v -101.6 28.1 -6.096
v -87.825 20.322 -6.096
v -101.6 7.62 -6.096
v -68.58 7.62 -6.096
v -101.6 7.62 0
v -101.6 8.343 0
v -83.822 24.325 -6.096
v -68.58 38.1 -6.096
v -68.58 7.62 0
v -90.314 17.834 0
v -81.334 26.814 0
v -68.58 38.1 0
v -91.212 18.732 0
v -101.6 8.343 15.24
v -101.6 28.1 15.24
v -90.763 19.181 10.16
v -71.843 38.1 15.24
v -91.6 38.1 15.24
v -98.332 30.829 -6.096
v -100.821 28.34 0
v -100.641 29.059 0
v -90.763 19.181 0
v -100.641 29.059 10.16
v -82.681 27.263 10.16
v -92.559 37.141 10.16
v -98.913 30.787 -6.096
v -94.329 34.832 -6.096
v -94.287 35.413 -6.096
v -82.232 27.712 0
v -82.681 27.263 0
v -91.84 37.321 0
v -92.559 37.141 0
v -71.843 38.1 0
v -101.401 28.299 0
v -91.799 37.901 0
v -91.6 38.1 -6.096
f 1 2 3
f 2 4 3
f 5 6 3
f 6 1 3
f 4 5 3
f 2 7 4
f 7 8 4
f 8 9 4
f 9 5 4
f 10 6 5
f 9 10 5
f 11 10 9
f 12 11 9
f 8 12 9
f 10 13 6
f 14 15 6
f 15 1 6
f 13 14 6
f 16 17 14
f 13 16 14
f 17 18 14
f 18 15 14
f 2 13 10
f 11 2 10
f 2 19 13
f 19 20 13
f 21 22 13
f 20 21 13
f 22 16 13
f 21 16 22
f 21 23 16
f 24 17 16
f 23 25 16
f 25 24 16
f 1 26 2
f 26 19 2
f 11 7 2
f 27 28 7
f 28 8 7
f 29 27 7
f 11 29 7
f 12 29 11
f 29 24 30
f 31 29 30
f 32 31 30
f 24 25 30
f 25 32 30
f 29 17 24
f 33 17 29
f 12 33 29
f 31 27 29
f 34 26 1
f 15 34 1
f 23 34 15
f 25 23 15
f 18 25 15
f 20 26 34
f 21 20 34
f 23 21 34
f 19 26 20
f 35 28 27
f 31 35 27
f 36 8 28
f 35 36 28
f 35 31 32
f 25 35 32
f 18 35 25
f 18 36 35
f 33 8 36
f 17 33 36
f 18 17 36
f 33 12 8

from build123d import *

# Parameters (mm, degrees)
BOSS_EXTRUDE1_DEPTH   = 27.432
BOSS_EXTRUDE2_DEPTH   = 5.08
SKETCH4_R             = 1.524
CUT_EXTRUDE1_DEPTH    = 2.286
SKETCH4_4_R           = 1.524
CUT_EXTRUDE2_DEPTH    = 63.630575033
BOSS_EXTRUDE3_DEPTH   = 3.81
FILLET1_R             = 2.54
CHAMFER3_SIZE         = 1.27
CHAMFER4_SIZE         = 0.254
SKETCH8_W             = 101.6
SKETCH8_H             = 44.45
CUT_EXTRUDE3_DEPTH    = 5.08
CHAMFER5_SIZE         = 1.27
BOSS_EXTRUDE4_DEPTH   = 6.096
FILLET2_R             = 1.27
CUT_EXTRUDE4_DEPTH    = 15.24
MIRROR3_COPY_1_DEPTH  = 15.24
CHAMFER7_SIZE         = 0.381
SKETCH19_W            = 135.869666512
SKETCH19_H            = 67.345799606
CUT_EXTRUDE9_DEPTH    = 31.242
BOSS_EXTRUDE6_DEPTH   = 20.32
SKETCH21_W            = 80.01
SKETCH21_H            = 52.07
BOSS_EXTRUDE7_DEPTH   = 3.81
FILLET3_R             = 2.54
CHAMFER8_SIZE         = 1.27
BOSS_EXTRUDE8_DEPTH   = 10.16
BOSS_EXTRUDE10_DEPTH  = 5.08
MIRROR13_COPY_1_DEPTH = 10.16
MIRROR13_COPY_2_DEPTH = 5.08
SKETCH27_W            = 107.092264377
SKETCH27_H            = 185.22400122
CUT_EXTRUDE11_DEPTH   = 177.054251014
SKETCH28_W            = 133.557103753
SKETCH28_H            = 91.2241148
CUT_EXTRUDE12_DEPTH   = 45.72


with BuildPart() as part:
    # Sketch1 → Boss-Extrude1 (new body)
    with BuildSketch(Plane(origin=(10.858740921, 0, 0), x_dir=(1, 0, 0), z_dir=(0, 0, 1))):
        Polygon((-52.705, 25.4), (-52.705, 21.59), (48.895, 21.59), (48.895, -22.86), (-52.705, -22.86), (-52.705, -25.4), (52.705, -25.4), (52.705, 25.4), align=None)
    extrude(amount=BOSS_EXTRUDE1_DEPTH)

    # Sketch1<3> → Boss-Extrude2 (add)
    with BuildSketch(Plane(origin=(10.858740921, 0, 0), x_dir=(1, 0, 0), z_dir=(0, 0, 1))):
        Polygon((48.895, 21.59), (-52.705, 21.59), (-52.705, 13.97), (-6.985, 13.97), (-6.985, -6.35), (-52.705, -6.35), (-52.705, -22.86), (48.895, -22.86), align=None)
    extrude(amount=BOSS_EXTRUDE2_DEPTH)

    # Sketch4 → Cut-Extrude1 (cut)
    # profile 1 of 4: a face of its own
    with BuildSketch(Plane(origin=(10.858740921, 0, 5.08), x_dir=(1, 0, 0), z_dir=(0, 0, 1))):
        Polygon((-44.785877438, 21.59), (-47.924122562, 21.59), (-49.493245123, 18.8722), (-47.924122562, 16.1544), (-44.785877438, 16.1544), (-43.216754877, 18.8722), align=None)
        with Locations((-46.355, 18.8722)):
            Circle(SKETCH4_R, mode=Mode.SUBTRACT)
    # profile 2 of 4: a face of its own
    with BuildSketch(Plane(origin=(10.858740921, 0, 5.08), x_dir=(1, 0, 0), z_dir=(0, 0, 1))):
        Polygon((21.126640721, 16.1544), (17.988395597, 16.1544), (16.419273036, 18.8722), (17.988395597, 21.59), (21.126640721, 21.59), (22.695763282, 18.8722), align=None)
        with Locations((19.557518159, 18.8722)):
            Circle(SKETCH4_R, mode=Mode.SUBTRACT)
    # profile 3 of 4: a face of its own
    with BuildSketch(Plane(origin=(10.858740921, 0, 5.08), x_dir=(1, 0, 0), z_dir=(0, 0, 1))):
        Polygon((22.695763282, -18.8722), (21.126640721, -16.1544), (17.988395597, -16.1544), (16.419273036, -18.8722), (17.988395597, -21.59), (21.126640721, -21.59), align=None)
        with Locations((19.557518159, -18.8722)):
            Circle(SKETCH4_R, mode=Mode.SUBTRACT)
    # profile 4 of 4: a face of its own
    with BuildSketch(Plane(origin=(10.858740921, 0, 5.08), x_dir=(1, 0, 0), z_dir=(0, 0, 1))):
        Polygon((-49.493245123, -18.8722), (-47.924122562, -16.1544), (-44.785877438, -16.1544), (-43.216754877, -18.8722), (-44.785877438, -21.59), (-47.924122562, -21.59), align=None)
        with Locations((-46.355, -18.8722)):
            Circle(SKETCH4_R, mode=Mode.SUBTRACT)
    extrude(amount=-CUT_EXTRUDE1_DEPTH, mode=Mode.SUBTRACT)

    # Sketch4<4> → Cut-Extrude2 (cut, through all)
    with BuildSketch(Plane(origin=(10.858740921, 0, 5.08), x_dir=(1, 0, 0), z_dir=(0, 0, 1))):
        with Locations((-46.355, 18.8722)):
            Circle(SKETCH4_4_R)
        with Locations((19.557518159, 18.8722)):
            Circle(SKETCH4_4_R)
        with Locations((-46.355, -18.8722)):
            Circle(SKETCH4_4_R)
        with Locations((19.557518159, -18.8722)):
            Circle(SKETCH4_4_R)
    extrude(amount=-CUT_EXTRUDE2_DEPTH, mode=Mode.SUBTRACT)

    # Sketch7 → Boss-Extrude3 (add)
    with BuildSketch(Plane(origin=(10.858740921, 0, 27.432), x_dir=(1, 0, 0), z_dir=(0, 0, 1))):
        Polygon((-52.705, 25.4), (52.705, 25.4), (52.705, -25.4), (-52.705, -25.4), (-52.705, -6.35), (-46.355, -6.35), (-46.355, 6.35), (-52.705, 6.35), align=None)
    extrude(amount=BOSS_EXTRUDE3_DEPTH)

    # Fillet1
    fillet1_edges = [part.edges().sort_by_distance(p)[0] for p in [
        (63.563740921, 25.4, 15.621),
        (63.563740921, -25.4, 15.621),
        (10.858740921, -25.4, 31.242),
        (63.563740921, 0, 31.242),
        (10.858740921, 25.4, 31.242),
    ]]
    fillet(fillet1_edges, radius=FILLET1_R)

    # Chamfer3
    chamfer3_edges = [part.edges().sort_by_distance(p)[0] for p in [
        (-41.846259079, 13.97, 27.432),
        (-41.846259079, 6.35, 29.337),
        (-41.846259079, 21.59, 16.256),
        (-41.846259079, -14.605, 27.432),
        (-41.846259079, -6.35, 29.337),
        (-38.671259079, 6.35, 31.242),
        (-35.496259079, 0, 31.242),
        (-38.671259079, -6.35, 31.242),
        (-41.846259079, -22.86, 16.256),
    ]]
    chamfer(chamfer3_edges, length=CHAMFER3_SIZE)

    # Chamfer4
    chamfer4_edges = [part.edges().sort_by_distance(p)[0] for p in [
        (28.892259079, 18.8722, 0),
        (-37.020259079, -18.8722, 0),
        (28.892259079, -18.8722, 0),
        (-37.020259079, 18.8722, 0),
    ]]
    chamfer(chamfer4_edges, length=CHAMFER4_SIZE)

    # Sketch8 → Cut-Extrude3 (cut)
    with BuildSketch(Plane(origin=(10.858740921, 0, 5.08), x_dir=(1, 0, 0), z_dir=(0, 0, 1))):
        with Locations((-1.905, -0.635)):
            Rectangle(SKETCH8_W, SKETCH8_H)
    extrude(amount=-CUT_EXTRUDE3_DEPTH, mode=Mode.SUBTRACT)

    # Chamfer5
    chamfer5_edges = [part.edges().sort_by_distance(p)[0] for p in [
        (-41.846259079, -22.86, 2.54),
        (-41.846259079, 21.59, 2.54),
    ]]
    chamfer(chamfer5_edges, length=CHAMFER5_SIZE)

    # Sketch9 → Boss-Extrude4 (add)
    with BuildSketch(Plane(origin=(10.858740921, 0, 0), x_dir=(-1, 0, 0), z_dir=(0, 0, -1))):
        Polygon((-90.741259079, 28.1), (-80.741259079, 38.1), (102.458740921, 38.1), (112.458740921, 28.1), (112.458740921, -28.1), (102.458740921, -38.1), (-80.741259079, -38.1), (-90.741259079, -28.1), align=None)
    extrude(amount=BOSS_EXTRUDE4_DEPTH)

    # Fillet2
    fillet2_edges = [part.edges().sort_by_distance(p)[0] for p in [
        (9.588740921, -25.4, 0),
        (63.563740921, 0, 0),
        (9.588740921, 25.4, 0),
        (62.819792145, 24.656051224, 0),
        (62.819792145, -24.656051224, 0),
    ]]
    fillet(fillet2_edges, radius=FILLET2_R)

    # Sketch13 → Cut-Extrude4 (cut)
    with BuildSketch(Plane(origin=(-64.85, 64.85, 0), x_dir=(0, 0, 1), z_dir=(-0.7071067811865477, 0.7071067811865474, 0))):
        Polygon((-6.096, -44.901280605), (-6.096, -42.070807846), (0, -38.551280605), (0, -51.251280605), (-6.096, -47.731753364), align=None)
    cut_extrude4 = extrude(amount=-CUT_EXTRUDE4_DEPTH, mode=Mode.SUBTRACT)

    # Mirror2: Cut-Extrude4 across plane
    add(cut_extrude4.mirror(Plane.ZX), mode=Mode.SUBTRACT)

    # Mirror3: Cut-Extrude4 across plane
    add(cut_extrude4.mirror(Plane(origin=(0, 0, 0), x_dir=(0, 0, 1), z_dir=(1, 0, 0))), mode=Mode.SUBTRACT)

    # Mirror3 copy 1 sketch → Mirror3 copy 1 (cut)
    with BuildSketch(Plane(origin=(64.85, -64.85, 0), x_dir=(0, 0, 1), z_dir=(0.7071067811865477, -0.7071067811865474, 0))):
        Polygon((-6.096, -44.901280605), (-6.096, -42.070807846), (0, -38.551280605), (0, -51.251280605), (-6.096, -47.731753364), align=None)
    extrude(amount=-MIRROR3_COPY_1_DEPTH, mode=Mode.SUBTRACT)

    # Chamfer7
    chamfer7_edges = [part.edges().sort_by_distance(p)[0] for p in [
        (-99.845787271, 29.854212729, -3.048),
        (-93.354212729, 36.345787271, -3.048),
        (-99.845787271, -29.854212729, -3.048),
        (-93.354212729, -36.345787271, -3.048),
        (99.845787271, 29.854212729, -3.048),
        (93.354212729, 36.345787271, -3.048),
        (99.845787271, -29.854212729, -3.048),
        (93.354212729, -36.345787271, -3.048),
    ]]
    chamfer(chamfer7_edges, length=CHAMFER7_SIZE)

    # Sketch19 → Cut-Extrude9 (cut)
    with BuildSketch(Plane.XY.offset(31.242)):
        Rectangle(SKETCH19_W, SKETCH19_H)
    extrude(amount=-CUT_EXTRUDE9_DEPTH, mode=Mode.SUBTRACT)

    # Sketch20 → Boss-Extrude6 (add)
    with BuildSketch(Plane.XY):
        Polygon((65.405, 22.86), (65.405, -21.59), (-10.795, -21.59), (-10.795, -25.4), (69.215, -25.4), (69.215, 26.67), (-10.795, 26.67), (-10.795, 22.86), align=None)
    extrude(amount=BOSS_EXTRUDE6_DEPTH)

    # Sketch21 → Boss-Extrude7 (add)
    with BuildSketch(Plane.XY.offset(20.32)):
        with Locations((29.21, 0.635)):
            Rectangle(SKETCH21_W, SKETCH21_H)
    extrude(amount=BOSS_EXTRUDE7_DEPTH)

    # Fillet3
    fillet3_edges = [part.edges().sort_by_distance(p)[0] for p in [
        (29.21, -25.4, 0),
        (69.215, 0.635, 0),
        (69.215, -25.4, 12.065),
        (29.21, 26.67, 0),
        (69.215, 26.67, 12.065),
        (29.21, -25.4, 24.13),
        (69.215, 0.635, 24.13),
        (29.21, 26.67, 24.13),
    ]]
    fillet(fillet3_edges, radius=FILLET3_R)

    # Chamfer8
    chamfer8_edges = [part.edges().sort_by_distance(p)[0] for p in [
        (-10.795, 22.86, 10.16),
        (-10.795, -21.59, 10.16),
        (-10.795, 0.635, 20.32),
    ]]
    chamfer(chamfer8_edges, length=CHAMFER8_SIZE)

    # Sketch24 → Boss-Extrude8 (add)
    with BuildSketch(Plane.XY):
        Polygon((-90.762833521, 19.180603012), (-101.6, 8.343436534), (-101.6, 28.1), (-100.641115254, 29.058884746), align=None)
        Polygon((-92.558884746, 37.141115254), (-91.6, 38.1), (-71.843436534, 38.1), (-82.680603012, 27.262833521), align=None)
    boss_extrude8 = extrude(amount=BOSS_EXTRUDE8_DEPTH)

    # Sketch26 → Boss-Extrude10 (add)
    with BuildSketch(Plane.XY.offset(10.16)):
        Polygon((-101.6, 8.343436534), (-71.843436534, 38.1), (-91.6, 38.1), (-101.6, 28.1), align=None)
    boss_extrude10 = extrude(amount=BOSS_EXTRUDE10_DEPTH)

    # Mirror12: Boss-Extrude8, Boss-Extrude10 across plane
    add(boss_extrude8.mirror(Plane.ZX))
    add(boss_extrude10.mirror(Plane.ZX))

    # Mirror13: Boss-Extrude8, Boss-Extrude10 across plane
    add(boss_extrude8.mirror(Plane(origin=(0, 0, 0), x_dir=(0, 0, 1), z_dir=(1, 0, 0))))
    add(boss_extrude10.mirror(Plane(origin=(0, 0, 0), x_dir=(0, 0, 1), z_dir=(1, 0, 0))))

    # Mirror13 copy 1 sketch → Mirror13 copy 1 (add)
    with BuildSketch(Plane(origin=(0, 0, 0), x_dir=(-1, 0, 0), z_dir=(0, 0, 1))):
        Polygon((-90.762833521, 19.180603012), (-101.6, 8.343436534), (-101.6, 28.1), (-100.641115254, 29.058884746), align=None)
        Polygon((-92.558884746, 37.141115254), (-91.6, 38.1), (-71.843436534, 38.1), (-82.680603012, 27.262833521), align=None)
    extrude(amount=MIRROR13_COPY_1_DEPTH)

    # Mirror13 copy 2 sketch → Mirror13 copy 2 (add)
    with BuildSketch(Plane(origin=(0, 0, 10.16), x_dir=(-1, 0, 0), z_dir=(0, 0, 1))):
        Polygon((-101.6, 8.343436534), (-71.843436534, 38.1), (-91.6, 38.1), (-101.6, 28.1), align=None)
    extrude(amount=MIRROR13_COPY_2_DEPTH)

    # Sketch27 → Cut-Extrude11 (cut, through all)
    with BuildSketch(Plane.ZY.offset(68.58)):
        with Locations((3.455221188, 0)):
            Rectangle(SKETCH27_W, SKETCH27_H)
    extrude(amount=-CUT_EXTRUDE11_DEPTH, mode=Mode.SUBTRACT)

    # Sketch28 → Cut-Extrude12 (cut)
    with BuildSketch(Plane.XZ.offset(38.1)):
        with Locations((-79.914224937, 5.971845756)):
            Rectangle(SKETCH28_W, SKETCH28_H)
    extrude(amount=-CUT_EXTRUDE12_DEPTH, mode=Mode.SUBTRACT)


solid = part.part
